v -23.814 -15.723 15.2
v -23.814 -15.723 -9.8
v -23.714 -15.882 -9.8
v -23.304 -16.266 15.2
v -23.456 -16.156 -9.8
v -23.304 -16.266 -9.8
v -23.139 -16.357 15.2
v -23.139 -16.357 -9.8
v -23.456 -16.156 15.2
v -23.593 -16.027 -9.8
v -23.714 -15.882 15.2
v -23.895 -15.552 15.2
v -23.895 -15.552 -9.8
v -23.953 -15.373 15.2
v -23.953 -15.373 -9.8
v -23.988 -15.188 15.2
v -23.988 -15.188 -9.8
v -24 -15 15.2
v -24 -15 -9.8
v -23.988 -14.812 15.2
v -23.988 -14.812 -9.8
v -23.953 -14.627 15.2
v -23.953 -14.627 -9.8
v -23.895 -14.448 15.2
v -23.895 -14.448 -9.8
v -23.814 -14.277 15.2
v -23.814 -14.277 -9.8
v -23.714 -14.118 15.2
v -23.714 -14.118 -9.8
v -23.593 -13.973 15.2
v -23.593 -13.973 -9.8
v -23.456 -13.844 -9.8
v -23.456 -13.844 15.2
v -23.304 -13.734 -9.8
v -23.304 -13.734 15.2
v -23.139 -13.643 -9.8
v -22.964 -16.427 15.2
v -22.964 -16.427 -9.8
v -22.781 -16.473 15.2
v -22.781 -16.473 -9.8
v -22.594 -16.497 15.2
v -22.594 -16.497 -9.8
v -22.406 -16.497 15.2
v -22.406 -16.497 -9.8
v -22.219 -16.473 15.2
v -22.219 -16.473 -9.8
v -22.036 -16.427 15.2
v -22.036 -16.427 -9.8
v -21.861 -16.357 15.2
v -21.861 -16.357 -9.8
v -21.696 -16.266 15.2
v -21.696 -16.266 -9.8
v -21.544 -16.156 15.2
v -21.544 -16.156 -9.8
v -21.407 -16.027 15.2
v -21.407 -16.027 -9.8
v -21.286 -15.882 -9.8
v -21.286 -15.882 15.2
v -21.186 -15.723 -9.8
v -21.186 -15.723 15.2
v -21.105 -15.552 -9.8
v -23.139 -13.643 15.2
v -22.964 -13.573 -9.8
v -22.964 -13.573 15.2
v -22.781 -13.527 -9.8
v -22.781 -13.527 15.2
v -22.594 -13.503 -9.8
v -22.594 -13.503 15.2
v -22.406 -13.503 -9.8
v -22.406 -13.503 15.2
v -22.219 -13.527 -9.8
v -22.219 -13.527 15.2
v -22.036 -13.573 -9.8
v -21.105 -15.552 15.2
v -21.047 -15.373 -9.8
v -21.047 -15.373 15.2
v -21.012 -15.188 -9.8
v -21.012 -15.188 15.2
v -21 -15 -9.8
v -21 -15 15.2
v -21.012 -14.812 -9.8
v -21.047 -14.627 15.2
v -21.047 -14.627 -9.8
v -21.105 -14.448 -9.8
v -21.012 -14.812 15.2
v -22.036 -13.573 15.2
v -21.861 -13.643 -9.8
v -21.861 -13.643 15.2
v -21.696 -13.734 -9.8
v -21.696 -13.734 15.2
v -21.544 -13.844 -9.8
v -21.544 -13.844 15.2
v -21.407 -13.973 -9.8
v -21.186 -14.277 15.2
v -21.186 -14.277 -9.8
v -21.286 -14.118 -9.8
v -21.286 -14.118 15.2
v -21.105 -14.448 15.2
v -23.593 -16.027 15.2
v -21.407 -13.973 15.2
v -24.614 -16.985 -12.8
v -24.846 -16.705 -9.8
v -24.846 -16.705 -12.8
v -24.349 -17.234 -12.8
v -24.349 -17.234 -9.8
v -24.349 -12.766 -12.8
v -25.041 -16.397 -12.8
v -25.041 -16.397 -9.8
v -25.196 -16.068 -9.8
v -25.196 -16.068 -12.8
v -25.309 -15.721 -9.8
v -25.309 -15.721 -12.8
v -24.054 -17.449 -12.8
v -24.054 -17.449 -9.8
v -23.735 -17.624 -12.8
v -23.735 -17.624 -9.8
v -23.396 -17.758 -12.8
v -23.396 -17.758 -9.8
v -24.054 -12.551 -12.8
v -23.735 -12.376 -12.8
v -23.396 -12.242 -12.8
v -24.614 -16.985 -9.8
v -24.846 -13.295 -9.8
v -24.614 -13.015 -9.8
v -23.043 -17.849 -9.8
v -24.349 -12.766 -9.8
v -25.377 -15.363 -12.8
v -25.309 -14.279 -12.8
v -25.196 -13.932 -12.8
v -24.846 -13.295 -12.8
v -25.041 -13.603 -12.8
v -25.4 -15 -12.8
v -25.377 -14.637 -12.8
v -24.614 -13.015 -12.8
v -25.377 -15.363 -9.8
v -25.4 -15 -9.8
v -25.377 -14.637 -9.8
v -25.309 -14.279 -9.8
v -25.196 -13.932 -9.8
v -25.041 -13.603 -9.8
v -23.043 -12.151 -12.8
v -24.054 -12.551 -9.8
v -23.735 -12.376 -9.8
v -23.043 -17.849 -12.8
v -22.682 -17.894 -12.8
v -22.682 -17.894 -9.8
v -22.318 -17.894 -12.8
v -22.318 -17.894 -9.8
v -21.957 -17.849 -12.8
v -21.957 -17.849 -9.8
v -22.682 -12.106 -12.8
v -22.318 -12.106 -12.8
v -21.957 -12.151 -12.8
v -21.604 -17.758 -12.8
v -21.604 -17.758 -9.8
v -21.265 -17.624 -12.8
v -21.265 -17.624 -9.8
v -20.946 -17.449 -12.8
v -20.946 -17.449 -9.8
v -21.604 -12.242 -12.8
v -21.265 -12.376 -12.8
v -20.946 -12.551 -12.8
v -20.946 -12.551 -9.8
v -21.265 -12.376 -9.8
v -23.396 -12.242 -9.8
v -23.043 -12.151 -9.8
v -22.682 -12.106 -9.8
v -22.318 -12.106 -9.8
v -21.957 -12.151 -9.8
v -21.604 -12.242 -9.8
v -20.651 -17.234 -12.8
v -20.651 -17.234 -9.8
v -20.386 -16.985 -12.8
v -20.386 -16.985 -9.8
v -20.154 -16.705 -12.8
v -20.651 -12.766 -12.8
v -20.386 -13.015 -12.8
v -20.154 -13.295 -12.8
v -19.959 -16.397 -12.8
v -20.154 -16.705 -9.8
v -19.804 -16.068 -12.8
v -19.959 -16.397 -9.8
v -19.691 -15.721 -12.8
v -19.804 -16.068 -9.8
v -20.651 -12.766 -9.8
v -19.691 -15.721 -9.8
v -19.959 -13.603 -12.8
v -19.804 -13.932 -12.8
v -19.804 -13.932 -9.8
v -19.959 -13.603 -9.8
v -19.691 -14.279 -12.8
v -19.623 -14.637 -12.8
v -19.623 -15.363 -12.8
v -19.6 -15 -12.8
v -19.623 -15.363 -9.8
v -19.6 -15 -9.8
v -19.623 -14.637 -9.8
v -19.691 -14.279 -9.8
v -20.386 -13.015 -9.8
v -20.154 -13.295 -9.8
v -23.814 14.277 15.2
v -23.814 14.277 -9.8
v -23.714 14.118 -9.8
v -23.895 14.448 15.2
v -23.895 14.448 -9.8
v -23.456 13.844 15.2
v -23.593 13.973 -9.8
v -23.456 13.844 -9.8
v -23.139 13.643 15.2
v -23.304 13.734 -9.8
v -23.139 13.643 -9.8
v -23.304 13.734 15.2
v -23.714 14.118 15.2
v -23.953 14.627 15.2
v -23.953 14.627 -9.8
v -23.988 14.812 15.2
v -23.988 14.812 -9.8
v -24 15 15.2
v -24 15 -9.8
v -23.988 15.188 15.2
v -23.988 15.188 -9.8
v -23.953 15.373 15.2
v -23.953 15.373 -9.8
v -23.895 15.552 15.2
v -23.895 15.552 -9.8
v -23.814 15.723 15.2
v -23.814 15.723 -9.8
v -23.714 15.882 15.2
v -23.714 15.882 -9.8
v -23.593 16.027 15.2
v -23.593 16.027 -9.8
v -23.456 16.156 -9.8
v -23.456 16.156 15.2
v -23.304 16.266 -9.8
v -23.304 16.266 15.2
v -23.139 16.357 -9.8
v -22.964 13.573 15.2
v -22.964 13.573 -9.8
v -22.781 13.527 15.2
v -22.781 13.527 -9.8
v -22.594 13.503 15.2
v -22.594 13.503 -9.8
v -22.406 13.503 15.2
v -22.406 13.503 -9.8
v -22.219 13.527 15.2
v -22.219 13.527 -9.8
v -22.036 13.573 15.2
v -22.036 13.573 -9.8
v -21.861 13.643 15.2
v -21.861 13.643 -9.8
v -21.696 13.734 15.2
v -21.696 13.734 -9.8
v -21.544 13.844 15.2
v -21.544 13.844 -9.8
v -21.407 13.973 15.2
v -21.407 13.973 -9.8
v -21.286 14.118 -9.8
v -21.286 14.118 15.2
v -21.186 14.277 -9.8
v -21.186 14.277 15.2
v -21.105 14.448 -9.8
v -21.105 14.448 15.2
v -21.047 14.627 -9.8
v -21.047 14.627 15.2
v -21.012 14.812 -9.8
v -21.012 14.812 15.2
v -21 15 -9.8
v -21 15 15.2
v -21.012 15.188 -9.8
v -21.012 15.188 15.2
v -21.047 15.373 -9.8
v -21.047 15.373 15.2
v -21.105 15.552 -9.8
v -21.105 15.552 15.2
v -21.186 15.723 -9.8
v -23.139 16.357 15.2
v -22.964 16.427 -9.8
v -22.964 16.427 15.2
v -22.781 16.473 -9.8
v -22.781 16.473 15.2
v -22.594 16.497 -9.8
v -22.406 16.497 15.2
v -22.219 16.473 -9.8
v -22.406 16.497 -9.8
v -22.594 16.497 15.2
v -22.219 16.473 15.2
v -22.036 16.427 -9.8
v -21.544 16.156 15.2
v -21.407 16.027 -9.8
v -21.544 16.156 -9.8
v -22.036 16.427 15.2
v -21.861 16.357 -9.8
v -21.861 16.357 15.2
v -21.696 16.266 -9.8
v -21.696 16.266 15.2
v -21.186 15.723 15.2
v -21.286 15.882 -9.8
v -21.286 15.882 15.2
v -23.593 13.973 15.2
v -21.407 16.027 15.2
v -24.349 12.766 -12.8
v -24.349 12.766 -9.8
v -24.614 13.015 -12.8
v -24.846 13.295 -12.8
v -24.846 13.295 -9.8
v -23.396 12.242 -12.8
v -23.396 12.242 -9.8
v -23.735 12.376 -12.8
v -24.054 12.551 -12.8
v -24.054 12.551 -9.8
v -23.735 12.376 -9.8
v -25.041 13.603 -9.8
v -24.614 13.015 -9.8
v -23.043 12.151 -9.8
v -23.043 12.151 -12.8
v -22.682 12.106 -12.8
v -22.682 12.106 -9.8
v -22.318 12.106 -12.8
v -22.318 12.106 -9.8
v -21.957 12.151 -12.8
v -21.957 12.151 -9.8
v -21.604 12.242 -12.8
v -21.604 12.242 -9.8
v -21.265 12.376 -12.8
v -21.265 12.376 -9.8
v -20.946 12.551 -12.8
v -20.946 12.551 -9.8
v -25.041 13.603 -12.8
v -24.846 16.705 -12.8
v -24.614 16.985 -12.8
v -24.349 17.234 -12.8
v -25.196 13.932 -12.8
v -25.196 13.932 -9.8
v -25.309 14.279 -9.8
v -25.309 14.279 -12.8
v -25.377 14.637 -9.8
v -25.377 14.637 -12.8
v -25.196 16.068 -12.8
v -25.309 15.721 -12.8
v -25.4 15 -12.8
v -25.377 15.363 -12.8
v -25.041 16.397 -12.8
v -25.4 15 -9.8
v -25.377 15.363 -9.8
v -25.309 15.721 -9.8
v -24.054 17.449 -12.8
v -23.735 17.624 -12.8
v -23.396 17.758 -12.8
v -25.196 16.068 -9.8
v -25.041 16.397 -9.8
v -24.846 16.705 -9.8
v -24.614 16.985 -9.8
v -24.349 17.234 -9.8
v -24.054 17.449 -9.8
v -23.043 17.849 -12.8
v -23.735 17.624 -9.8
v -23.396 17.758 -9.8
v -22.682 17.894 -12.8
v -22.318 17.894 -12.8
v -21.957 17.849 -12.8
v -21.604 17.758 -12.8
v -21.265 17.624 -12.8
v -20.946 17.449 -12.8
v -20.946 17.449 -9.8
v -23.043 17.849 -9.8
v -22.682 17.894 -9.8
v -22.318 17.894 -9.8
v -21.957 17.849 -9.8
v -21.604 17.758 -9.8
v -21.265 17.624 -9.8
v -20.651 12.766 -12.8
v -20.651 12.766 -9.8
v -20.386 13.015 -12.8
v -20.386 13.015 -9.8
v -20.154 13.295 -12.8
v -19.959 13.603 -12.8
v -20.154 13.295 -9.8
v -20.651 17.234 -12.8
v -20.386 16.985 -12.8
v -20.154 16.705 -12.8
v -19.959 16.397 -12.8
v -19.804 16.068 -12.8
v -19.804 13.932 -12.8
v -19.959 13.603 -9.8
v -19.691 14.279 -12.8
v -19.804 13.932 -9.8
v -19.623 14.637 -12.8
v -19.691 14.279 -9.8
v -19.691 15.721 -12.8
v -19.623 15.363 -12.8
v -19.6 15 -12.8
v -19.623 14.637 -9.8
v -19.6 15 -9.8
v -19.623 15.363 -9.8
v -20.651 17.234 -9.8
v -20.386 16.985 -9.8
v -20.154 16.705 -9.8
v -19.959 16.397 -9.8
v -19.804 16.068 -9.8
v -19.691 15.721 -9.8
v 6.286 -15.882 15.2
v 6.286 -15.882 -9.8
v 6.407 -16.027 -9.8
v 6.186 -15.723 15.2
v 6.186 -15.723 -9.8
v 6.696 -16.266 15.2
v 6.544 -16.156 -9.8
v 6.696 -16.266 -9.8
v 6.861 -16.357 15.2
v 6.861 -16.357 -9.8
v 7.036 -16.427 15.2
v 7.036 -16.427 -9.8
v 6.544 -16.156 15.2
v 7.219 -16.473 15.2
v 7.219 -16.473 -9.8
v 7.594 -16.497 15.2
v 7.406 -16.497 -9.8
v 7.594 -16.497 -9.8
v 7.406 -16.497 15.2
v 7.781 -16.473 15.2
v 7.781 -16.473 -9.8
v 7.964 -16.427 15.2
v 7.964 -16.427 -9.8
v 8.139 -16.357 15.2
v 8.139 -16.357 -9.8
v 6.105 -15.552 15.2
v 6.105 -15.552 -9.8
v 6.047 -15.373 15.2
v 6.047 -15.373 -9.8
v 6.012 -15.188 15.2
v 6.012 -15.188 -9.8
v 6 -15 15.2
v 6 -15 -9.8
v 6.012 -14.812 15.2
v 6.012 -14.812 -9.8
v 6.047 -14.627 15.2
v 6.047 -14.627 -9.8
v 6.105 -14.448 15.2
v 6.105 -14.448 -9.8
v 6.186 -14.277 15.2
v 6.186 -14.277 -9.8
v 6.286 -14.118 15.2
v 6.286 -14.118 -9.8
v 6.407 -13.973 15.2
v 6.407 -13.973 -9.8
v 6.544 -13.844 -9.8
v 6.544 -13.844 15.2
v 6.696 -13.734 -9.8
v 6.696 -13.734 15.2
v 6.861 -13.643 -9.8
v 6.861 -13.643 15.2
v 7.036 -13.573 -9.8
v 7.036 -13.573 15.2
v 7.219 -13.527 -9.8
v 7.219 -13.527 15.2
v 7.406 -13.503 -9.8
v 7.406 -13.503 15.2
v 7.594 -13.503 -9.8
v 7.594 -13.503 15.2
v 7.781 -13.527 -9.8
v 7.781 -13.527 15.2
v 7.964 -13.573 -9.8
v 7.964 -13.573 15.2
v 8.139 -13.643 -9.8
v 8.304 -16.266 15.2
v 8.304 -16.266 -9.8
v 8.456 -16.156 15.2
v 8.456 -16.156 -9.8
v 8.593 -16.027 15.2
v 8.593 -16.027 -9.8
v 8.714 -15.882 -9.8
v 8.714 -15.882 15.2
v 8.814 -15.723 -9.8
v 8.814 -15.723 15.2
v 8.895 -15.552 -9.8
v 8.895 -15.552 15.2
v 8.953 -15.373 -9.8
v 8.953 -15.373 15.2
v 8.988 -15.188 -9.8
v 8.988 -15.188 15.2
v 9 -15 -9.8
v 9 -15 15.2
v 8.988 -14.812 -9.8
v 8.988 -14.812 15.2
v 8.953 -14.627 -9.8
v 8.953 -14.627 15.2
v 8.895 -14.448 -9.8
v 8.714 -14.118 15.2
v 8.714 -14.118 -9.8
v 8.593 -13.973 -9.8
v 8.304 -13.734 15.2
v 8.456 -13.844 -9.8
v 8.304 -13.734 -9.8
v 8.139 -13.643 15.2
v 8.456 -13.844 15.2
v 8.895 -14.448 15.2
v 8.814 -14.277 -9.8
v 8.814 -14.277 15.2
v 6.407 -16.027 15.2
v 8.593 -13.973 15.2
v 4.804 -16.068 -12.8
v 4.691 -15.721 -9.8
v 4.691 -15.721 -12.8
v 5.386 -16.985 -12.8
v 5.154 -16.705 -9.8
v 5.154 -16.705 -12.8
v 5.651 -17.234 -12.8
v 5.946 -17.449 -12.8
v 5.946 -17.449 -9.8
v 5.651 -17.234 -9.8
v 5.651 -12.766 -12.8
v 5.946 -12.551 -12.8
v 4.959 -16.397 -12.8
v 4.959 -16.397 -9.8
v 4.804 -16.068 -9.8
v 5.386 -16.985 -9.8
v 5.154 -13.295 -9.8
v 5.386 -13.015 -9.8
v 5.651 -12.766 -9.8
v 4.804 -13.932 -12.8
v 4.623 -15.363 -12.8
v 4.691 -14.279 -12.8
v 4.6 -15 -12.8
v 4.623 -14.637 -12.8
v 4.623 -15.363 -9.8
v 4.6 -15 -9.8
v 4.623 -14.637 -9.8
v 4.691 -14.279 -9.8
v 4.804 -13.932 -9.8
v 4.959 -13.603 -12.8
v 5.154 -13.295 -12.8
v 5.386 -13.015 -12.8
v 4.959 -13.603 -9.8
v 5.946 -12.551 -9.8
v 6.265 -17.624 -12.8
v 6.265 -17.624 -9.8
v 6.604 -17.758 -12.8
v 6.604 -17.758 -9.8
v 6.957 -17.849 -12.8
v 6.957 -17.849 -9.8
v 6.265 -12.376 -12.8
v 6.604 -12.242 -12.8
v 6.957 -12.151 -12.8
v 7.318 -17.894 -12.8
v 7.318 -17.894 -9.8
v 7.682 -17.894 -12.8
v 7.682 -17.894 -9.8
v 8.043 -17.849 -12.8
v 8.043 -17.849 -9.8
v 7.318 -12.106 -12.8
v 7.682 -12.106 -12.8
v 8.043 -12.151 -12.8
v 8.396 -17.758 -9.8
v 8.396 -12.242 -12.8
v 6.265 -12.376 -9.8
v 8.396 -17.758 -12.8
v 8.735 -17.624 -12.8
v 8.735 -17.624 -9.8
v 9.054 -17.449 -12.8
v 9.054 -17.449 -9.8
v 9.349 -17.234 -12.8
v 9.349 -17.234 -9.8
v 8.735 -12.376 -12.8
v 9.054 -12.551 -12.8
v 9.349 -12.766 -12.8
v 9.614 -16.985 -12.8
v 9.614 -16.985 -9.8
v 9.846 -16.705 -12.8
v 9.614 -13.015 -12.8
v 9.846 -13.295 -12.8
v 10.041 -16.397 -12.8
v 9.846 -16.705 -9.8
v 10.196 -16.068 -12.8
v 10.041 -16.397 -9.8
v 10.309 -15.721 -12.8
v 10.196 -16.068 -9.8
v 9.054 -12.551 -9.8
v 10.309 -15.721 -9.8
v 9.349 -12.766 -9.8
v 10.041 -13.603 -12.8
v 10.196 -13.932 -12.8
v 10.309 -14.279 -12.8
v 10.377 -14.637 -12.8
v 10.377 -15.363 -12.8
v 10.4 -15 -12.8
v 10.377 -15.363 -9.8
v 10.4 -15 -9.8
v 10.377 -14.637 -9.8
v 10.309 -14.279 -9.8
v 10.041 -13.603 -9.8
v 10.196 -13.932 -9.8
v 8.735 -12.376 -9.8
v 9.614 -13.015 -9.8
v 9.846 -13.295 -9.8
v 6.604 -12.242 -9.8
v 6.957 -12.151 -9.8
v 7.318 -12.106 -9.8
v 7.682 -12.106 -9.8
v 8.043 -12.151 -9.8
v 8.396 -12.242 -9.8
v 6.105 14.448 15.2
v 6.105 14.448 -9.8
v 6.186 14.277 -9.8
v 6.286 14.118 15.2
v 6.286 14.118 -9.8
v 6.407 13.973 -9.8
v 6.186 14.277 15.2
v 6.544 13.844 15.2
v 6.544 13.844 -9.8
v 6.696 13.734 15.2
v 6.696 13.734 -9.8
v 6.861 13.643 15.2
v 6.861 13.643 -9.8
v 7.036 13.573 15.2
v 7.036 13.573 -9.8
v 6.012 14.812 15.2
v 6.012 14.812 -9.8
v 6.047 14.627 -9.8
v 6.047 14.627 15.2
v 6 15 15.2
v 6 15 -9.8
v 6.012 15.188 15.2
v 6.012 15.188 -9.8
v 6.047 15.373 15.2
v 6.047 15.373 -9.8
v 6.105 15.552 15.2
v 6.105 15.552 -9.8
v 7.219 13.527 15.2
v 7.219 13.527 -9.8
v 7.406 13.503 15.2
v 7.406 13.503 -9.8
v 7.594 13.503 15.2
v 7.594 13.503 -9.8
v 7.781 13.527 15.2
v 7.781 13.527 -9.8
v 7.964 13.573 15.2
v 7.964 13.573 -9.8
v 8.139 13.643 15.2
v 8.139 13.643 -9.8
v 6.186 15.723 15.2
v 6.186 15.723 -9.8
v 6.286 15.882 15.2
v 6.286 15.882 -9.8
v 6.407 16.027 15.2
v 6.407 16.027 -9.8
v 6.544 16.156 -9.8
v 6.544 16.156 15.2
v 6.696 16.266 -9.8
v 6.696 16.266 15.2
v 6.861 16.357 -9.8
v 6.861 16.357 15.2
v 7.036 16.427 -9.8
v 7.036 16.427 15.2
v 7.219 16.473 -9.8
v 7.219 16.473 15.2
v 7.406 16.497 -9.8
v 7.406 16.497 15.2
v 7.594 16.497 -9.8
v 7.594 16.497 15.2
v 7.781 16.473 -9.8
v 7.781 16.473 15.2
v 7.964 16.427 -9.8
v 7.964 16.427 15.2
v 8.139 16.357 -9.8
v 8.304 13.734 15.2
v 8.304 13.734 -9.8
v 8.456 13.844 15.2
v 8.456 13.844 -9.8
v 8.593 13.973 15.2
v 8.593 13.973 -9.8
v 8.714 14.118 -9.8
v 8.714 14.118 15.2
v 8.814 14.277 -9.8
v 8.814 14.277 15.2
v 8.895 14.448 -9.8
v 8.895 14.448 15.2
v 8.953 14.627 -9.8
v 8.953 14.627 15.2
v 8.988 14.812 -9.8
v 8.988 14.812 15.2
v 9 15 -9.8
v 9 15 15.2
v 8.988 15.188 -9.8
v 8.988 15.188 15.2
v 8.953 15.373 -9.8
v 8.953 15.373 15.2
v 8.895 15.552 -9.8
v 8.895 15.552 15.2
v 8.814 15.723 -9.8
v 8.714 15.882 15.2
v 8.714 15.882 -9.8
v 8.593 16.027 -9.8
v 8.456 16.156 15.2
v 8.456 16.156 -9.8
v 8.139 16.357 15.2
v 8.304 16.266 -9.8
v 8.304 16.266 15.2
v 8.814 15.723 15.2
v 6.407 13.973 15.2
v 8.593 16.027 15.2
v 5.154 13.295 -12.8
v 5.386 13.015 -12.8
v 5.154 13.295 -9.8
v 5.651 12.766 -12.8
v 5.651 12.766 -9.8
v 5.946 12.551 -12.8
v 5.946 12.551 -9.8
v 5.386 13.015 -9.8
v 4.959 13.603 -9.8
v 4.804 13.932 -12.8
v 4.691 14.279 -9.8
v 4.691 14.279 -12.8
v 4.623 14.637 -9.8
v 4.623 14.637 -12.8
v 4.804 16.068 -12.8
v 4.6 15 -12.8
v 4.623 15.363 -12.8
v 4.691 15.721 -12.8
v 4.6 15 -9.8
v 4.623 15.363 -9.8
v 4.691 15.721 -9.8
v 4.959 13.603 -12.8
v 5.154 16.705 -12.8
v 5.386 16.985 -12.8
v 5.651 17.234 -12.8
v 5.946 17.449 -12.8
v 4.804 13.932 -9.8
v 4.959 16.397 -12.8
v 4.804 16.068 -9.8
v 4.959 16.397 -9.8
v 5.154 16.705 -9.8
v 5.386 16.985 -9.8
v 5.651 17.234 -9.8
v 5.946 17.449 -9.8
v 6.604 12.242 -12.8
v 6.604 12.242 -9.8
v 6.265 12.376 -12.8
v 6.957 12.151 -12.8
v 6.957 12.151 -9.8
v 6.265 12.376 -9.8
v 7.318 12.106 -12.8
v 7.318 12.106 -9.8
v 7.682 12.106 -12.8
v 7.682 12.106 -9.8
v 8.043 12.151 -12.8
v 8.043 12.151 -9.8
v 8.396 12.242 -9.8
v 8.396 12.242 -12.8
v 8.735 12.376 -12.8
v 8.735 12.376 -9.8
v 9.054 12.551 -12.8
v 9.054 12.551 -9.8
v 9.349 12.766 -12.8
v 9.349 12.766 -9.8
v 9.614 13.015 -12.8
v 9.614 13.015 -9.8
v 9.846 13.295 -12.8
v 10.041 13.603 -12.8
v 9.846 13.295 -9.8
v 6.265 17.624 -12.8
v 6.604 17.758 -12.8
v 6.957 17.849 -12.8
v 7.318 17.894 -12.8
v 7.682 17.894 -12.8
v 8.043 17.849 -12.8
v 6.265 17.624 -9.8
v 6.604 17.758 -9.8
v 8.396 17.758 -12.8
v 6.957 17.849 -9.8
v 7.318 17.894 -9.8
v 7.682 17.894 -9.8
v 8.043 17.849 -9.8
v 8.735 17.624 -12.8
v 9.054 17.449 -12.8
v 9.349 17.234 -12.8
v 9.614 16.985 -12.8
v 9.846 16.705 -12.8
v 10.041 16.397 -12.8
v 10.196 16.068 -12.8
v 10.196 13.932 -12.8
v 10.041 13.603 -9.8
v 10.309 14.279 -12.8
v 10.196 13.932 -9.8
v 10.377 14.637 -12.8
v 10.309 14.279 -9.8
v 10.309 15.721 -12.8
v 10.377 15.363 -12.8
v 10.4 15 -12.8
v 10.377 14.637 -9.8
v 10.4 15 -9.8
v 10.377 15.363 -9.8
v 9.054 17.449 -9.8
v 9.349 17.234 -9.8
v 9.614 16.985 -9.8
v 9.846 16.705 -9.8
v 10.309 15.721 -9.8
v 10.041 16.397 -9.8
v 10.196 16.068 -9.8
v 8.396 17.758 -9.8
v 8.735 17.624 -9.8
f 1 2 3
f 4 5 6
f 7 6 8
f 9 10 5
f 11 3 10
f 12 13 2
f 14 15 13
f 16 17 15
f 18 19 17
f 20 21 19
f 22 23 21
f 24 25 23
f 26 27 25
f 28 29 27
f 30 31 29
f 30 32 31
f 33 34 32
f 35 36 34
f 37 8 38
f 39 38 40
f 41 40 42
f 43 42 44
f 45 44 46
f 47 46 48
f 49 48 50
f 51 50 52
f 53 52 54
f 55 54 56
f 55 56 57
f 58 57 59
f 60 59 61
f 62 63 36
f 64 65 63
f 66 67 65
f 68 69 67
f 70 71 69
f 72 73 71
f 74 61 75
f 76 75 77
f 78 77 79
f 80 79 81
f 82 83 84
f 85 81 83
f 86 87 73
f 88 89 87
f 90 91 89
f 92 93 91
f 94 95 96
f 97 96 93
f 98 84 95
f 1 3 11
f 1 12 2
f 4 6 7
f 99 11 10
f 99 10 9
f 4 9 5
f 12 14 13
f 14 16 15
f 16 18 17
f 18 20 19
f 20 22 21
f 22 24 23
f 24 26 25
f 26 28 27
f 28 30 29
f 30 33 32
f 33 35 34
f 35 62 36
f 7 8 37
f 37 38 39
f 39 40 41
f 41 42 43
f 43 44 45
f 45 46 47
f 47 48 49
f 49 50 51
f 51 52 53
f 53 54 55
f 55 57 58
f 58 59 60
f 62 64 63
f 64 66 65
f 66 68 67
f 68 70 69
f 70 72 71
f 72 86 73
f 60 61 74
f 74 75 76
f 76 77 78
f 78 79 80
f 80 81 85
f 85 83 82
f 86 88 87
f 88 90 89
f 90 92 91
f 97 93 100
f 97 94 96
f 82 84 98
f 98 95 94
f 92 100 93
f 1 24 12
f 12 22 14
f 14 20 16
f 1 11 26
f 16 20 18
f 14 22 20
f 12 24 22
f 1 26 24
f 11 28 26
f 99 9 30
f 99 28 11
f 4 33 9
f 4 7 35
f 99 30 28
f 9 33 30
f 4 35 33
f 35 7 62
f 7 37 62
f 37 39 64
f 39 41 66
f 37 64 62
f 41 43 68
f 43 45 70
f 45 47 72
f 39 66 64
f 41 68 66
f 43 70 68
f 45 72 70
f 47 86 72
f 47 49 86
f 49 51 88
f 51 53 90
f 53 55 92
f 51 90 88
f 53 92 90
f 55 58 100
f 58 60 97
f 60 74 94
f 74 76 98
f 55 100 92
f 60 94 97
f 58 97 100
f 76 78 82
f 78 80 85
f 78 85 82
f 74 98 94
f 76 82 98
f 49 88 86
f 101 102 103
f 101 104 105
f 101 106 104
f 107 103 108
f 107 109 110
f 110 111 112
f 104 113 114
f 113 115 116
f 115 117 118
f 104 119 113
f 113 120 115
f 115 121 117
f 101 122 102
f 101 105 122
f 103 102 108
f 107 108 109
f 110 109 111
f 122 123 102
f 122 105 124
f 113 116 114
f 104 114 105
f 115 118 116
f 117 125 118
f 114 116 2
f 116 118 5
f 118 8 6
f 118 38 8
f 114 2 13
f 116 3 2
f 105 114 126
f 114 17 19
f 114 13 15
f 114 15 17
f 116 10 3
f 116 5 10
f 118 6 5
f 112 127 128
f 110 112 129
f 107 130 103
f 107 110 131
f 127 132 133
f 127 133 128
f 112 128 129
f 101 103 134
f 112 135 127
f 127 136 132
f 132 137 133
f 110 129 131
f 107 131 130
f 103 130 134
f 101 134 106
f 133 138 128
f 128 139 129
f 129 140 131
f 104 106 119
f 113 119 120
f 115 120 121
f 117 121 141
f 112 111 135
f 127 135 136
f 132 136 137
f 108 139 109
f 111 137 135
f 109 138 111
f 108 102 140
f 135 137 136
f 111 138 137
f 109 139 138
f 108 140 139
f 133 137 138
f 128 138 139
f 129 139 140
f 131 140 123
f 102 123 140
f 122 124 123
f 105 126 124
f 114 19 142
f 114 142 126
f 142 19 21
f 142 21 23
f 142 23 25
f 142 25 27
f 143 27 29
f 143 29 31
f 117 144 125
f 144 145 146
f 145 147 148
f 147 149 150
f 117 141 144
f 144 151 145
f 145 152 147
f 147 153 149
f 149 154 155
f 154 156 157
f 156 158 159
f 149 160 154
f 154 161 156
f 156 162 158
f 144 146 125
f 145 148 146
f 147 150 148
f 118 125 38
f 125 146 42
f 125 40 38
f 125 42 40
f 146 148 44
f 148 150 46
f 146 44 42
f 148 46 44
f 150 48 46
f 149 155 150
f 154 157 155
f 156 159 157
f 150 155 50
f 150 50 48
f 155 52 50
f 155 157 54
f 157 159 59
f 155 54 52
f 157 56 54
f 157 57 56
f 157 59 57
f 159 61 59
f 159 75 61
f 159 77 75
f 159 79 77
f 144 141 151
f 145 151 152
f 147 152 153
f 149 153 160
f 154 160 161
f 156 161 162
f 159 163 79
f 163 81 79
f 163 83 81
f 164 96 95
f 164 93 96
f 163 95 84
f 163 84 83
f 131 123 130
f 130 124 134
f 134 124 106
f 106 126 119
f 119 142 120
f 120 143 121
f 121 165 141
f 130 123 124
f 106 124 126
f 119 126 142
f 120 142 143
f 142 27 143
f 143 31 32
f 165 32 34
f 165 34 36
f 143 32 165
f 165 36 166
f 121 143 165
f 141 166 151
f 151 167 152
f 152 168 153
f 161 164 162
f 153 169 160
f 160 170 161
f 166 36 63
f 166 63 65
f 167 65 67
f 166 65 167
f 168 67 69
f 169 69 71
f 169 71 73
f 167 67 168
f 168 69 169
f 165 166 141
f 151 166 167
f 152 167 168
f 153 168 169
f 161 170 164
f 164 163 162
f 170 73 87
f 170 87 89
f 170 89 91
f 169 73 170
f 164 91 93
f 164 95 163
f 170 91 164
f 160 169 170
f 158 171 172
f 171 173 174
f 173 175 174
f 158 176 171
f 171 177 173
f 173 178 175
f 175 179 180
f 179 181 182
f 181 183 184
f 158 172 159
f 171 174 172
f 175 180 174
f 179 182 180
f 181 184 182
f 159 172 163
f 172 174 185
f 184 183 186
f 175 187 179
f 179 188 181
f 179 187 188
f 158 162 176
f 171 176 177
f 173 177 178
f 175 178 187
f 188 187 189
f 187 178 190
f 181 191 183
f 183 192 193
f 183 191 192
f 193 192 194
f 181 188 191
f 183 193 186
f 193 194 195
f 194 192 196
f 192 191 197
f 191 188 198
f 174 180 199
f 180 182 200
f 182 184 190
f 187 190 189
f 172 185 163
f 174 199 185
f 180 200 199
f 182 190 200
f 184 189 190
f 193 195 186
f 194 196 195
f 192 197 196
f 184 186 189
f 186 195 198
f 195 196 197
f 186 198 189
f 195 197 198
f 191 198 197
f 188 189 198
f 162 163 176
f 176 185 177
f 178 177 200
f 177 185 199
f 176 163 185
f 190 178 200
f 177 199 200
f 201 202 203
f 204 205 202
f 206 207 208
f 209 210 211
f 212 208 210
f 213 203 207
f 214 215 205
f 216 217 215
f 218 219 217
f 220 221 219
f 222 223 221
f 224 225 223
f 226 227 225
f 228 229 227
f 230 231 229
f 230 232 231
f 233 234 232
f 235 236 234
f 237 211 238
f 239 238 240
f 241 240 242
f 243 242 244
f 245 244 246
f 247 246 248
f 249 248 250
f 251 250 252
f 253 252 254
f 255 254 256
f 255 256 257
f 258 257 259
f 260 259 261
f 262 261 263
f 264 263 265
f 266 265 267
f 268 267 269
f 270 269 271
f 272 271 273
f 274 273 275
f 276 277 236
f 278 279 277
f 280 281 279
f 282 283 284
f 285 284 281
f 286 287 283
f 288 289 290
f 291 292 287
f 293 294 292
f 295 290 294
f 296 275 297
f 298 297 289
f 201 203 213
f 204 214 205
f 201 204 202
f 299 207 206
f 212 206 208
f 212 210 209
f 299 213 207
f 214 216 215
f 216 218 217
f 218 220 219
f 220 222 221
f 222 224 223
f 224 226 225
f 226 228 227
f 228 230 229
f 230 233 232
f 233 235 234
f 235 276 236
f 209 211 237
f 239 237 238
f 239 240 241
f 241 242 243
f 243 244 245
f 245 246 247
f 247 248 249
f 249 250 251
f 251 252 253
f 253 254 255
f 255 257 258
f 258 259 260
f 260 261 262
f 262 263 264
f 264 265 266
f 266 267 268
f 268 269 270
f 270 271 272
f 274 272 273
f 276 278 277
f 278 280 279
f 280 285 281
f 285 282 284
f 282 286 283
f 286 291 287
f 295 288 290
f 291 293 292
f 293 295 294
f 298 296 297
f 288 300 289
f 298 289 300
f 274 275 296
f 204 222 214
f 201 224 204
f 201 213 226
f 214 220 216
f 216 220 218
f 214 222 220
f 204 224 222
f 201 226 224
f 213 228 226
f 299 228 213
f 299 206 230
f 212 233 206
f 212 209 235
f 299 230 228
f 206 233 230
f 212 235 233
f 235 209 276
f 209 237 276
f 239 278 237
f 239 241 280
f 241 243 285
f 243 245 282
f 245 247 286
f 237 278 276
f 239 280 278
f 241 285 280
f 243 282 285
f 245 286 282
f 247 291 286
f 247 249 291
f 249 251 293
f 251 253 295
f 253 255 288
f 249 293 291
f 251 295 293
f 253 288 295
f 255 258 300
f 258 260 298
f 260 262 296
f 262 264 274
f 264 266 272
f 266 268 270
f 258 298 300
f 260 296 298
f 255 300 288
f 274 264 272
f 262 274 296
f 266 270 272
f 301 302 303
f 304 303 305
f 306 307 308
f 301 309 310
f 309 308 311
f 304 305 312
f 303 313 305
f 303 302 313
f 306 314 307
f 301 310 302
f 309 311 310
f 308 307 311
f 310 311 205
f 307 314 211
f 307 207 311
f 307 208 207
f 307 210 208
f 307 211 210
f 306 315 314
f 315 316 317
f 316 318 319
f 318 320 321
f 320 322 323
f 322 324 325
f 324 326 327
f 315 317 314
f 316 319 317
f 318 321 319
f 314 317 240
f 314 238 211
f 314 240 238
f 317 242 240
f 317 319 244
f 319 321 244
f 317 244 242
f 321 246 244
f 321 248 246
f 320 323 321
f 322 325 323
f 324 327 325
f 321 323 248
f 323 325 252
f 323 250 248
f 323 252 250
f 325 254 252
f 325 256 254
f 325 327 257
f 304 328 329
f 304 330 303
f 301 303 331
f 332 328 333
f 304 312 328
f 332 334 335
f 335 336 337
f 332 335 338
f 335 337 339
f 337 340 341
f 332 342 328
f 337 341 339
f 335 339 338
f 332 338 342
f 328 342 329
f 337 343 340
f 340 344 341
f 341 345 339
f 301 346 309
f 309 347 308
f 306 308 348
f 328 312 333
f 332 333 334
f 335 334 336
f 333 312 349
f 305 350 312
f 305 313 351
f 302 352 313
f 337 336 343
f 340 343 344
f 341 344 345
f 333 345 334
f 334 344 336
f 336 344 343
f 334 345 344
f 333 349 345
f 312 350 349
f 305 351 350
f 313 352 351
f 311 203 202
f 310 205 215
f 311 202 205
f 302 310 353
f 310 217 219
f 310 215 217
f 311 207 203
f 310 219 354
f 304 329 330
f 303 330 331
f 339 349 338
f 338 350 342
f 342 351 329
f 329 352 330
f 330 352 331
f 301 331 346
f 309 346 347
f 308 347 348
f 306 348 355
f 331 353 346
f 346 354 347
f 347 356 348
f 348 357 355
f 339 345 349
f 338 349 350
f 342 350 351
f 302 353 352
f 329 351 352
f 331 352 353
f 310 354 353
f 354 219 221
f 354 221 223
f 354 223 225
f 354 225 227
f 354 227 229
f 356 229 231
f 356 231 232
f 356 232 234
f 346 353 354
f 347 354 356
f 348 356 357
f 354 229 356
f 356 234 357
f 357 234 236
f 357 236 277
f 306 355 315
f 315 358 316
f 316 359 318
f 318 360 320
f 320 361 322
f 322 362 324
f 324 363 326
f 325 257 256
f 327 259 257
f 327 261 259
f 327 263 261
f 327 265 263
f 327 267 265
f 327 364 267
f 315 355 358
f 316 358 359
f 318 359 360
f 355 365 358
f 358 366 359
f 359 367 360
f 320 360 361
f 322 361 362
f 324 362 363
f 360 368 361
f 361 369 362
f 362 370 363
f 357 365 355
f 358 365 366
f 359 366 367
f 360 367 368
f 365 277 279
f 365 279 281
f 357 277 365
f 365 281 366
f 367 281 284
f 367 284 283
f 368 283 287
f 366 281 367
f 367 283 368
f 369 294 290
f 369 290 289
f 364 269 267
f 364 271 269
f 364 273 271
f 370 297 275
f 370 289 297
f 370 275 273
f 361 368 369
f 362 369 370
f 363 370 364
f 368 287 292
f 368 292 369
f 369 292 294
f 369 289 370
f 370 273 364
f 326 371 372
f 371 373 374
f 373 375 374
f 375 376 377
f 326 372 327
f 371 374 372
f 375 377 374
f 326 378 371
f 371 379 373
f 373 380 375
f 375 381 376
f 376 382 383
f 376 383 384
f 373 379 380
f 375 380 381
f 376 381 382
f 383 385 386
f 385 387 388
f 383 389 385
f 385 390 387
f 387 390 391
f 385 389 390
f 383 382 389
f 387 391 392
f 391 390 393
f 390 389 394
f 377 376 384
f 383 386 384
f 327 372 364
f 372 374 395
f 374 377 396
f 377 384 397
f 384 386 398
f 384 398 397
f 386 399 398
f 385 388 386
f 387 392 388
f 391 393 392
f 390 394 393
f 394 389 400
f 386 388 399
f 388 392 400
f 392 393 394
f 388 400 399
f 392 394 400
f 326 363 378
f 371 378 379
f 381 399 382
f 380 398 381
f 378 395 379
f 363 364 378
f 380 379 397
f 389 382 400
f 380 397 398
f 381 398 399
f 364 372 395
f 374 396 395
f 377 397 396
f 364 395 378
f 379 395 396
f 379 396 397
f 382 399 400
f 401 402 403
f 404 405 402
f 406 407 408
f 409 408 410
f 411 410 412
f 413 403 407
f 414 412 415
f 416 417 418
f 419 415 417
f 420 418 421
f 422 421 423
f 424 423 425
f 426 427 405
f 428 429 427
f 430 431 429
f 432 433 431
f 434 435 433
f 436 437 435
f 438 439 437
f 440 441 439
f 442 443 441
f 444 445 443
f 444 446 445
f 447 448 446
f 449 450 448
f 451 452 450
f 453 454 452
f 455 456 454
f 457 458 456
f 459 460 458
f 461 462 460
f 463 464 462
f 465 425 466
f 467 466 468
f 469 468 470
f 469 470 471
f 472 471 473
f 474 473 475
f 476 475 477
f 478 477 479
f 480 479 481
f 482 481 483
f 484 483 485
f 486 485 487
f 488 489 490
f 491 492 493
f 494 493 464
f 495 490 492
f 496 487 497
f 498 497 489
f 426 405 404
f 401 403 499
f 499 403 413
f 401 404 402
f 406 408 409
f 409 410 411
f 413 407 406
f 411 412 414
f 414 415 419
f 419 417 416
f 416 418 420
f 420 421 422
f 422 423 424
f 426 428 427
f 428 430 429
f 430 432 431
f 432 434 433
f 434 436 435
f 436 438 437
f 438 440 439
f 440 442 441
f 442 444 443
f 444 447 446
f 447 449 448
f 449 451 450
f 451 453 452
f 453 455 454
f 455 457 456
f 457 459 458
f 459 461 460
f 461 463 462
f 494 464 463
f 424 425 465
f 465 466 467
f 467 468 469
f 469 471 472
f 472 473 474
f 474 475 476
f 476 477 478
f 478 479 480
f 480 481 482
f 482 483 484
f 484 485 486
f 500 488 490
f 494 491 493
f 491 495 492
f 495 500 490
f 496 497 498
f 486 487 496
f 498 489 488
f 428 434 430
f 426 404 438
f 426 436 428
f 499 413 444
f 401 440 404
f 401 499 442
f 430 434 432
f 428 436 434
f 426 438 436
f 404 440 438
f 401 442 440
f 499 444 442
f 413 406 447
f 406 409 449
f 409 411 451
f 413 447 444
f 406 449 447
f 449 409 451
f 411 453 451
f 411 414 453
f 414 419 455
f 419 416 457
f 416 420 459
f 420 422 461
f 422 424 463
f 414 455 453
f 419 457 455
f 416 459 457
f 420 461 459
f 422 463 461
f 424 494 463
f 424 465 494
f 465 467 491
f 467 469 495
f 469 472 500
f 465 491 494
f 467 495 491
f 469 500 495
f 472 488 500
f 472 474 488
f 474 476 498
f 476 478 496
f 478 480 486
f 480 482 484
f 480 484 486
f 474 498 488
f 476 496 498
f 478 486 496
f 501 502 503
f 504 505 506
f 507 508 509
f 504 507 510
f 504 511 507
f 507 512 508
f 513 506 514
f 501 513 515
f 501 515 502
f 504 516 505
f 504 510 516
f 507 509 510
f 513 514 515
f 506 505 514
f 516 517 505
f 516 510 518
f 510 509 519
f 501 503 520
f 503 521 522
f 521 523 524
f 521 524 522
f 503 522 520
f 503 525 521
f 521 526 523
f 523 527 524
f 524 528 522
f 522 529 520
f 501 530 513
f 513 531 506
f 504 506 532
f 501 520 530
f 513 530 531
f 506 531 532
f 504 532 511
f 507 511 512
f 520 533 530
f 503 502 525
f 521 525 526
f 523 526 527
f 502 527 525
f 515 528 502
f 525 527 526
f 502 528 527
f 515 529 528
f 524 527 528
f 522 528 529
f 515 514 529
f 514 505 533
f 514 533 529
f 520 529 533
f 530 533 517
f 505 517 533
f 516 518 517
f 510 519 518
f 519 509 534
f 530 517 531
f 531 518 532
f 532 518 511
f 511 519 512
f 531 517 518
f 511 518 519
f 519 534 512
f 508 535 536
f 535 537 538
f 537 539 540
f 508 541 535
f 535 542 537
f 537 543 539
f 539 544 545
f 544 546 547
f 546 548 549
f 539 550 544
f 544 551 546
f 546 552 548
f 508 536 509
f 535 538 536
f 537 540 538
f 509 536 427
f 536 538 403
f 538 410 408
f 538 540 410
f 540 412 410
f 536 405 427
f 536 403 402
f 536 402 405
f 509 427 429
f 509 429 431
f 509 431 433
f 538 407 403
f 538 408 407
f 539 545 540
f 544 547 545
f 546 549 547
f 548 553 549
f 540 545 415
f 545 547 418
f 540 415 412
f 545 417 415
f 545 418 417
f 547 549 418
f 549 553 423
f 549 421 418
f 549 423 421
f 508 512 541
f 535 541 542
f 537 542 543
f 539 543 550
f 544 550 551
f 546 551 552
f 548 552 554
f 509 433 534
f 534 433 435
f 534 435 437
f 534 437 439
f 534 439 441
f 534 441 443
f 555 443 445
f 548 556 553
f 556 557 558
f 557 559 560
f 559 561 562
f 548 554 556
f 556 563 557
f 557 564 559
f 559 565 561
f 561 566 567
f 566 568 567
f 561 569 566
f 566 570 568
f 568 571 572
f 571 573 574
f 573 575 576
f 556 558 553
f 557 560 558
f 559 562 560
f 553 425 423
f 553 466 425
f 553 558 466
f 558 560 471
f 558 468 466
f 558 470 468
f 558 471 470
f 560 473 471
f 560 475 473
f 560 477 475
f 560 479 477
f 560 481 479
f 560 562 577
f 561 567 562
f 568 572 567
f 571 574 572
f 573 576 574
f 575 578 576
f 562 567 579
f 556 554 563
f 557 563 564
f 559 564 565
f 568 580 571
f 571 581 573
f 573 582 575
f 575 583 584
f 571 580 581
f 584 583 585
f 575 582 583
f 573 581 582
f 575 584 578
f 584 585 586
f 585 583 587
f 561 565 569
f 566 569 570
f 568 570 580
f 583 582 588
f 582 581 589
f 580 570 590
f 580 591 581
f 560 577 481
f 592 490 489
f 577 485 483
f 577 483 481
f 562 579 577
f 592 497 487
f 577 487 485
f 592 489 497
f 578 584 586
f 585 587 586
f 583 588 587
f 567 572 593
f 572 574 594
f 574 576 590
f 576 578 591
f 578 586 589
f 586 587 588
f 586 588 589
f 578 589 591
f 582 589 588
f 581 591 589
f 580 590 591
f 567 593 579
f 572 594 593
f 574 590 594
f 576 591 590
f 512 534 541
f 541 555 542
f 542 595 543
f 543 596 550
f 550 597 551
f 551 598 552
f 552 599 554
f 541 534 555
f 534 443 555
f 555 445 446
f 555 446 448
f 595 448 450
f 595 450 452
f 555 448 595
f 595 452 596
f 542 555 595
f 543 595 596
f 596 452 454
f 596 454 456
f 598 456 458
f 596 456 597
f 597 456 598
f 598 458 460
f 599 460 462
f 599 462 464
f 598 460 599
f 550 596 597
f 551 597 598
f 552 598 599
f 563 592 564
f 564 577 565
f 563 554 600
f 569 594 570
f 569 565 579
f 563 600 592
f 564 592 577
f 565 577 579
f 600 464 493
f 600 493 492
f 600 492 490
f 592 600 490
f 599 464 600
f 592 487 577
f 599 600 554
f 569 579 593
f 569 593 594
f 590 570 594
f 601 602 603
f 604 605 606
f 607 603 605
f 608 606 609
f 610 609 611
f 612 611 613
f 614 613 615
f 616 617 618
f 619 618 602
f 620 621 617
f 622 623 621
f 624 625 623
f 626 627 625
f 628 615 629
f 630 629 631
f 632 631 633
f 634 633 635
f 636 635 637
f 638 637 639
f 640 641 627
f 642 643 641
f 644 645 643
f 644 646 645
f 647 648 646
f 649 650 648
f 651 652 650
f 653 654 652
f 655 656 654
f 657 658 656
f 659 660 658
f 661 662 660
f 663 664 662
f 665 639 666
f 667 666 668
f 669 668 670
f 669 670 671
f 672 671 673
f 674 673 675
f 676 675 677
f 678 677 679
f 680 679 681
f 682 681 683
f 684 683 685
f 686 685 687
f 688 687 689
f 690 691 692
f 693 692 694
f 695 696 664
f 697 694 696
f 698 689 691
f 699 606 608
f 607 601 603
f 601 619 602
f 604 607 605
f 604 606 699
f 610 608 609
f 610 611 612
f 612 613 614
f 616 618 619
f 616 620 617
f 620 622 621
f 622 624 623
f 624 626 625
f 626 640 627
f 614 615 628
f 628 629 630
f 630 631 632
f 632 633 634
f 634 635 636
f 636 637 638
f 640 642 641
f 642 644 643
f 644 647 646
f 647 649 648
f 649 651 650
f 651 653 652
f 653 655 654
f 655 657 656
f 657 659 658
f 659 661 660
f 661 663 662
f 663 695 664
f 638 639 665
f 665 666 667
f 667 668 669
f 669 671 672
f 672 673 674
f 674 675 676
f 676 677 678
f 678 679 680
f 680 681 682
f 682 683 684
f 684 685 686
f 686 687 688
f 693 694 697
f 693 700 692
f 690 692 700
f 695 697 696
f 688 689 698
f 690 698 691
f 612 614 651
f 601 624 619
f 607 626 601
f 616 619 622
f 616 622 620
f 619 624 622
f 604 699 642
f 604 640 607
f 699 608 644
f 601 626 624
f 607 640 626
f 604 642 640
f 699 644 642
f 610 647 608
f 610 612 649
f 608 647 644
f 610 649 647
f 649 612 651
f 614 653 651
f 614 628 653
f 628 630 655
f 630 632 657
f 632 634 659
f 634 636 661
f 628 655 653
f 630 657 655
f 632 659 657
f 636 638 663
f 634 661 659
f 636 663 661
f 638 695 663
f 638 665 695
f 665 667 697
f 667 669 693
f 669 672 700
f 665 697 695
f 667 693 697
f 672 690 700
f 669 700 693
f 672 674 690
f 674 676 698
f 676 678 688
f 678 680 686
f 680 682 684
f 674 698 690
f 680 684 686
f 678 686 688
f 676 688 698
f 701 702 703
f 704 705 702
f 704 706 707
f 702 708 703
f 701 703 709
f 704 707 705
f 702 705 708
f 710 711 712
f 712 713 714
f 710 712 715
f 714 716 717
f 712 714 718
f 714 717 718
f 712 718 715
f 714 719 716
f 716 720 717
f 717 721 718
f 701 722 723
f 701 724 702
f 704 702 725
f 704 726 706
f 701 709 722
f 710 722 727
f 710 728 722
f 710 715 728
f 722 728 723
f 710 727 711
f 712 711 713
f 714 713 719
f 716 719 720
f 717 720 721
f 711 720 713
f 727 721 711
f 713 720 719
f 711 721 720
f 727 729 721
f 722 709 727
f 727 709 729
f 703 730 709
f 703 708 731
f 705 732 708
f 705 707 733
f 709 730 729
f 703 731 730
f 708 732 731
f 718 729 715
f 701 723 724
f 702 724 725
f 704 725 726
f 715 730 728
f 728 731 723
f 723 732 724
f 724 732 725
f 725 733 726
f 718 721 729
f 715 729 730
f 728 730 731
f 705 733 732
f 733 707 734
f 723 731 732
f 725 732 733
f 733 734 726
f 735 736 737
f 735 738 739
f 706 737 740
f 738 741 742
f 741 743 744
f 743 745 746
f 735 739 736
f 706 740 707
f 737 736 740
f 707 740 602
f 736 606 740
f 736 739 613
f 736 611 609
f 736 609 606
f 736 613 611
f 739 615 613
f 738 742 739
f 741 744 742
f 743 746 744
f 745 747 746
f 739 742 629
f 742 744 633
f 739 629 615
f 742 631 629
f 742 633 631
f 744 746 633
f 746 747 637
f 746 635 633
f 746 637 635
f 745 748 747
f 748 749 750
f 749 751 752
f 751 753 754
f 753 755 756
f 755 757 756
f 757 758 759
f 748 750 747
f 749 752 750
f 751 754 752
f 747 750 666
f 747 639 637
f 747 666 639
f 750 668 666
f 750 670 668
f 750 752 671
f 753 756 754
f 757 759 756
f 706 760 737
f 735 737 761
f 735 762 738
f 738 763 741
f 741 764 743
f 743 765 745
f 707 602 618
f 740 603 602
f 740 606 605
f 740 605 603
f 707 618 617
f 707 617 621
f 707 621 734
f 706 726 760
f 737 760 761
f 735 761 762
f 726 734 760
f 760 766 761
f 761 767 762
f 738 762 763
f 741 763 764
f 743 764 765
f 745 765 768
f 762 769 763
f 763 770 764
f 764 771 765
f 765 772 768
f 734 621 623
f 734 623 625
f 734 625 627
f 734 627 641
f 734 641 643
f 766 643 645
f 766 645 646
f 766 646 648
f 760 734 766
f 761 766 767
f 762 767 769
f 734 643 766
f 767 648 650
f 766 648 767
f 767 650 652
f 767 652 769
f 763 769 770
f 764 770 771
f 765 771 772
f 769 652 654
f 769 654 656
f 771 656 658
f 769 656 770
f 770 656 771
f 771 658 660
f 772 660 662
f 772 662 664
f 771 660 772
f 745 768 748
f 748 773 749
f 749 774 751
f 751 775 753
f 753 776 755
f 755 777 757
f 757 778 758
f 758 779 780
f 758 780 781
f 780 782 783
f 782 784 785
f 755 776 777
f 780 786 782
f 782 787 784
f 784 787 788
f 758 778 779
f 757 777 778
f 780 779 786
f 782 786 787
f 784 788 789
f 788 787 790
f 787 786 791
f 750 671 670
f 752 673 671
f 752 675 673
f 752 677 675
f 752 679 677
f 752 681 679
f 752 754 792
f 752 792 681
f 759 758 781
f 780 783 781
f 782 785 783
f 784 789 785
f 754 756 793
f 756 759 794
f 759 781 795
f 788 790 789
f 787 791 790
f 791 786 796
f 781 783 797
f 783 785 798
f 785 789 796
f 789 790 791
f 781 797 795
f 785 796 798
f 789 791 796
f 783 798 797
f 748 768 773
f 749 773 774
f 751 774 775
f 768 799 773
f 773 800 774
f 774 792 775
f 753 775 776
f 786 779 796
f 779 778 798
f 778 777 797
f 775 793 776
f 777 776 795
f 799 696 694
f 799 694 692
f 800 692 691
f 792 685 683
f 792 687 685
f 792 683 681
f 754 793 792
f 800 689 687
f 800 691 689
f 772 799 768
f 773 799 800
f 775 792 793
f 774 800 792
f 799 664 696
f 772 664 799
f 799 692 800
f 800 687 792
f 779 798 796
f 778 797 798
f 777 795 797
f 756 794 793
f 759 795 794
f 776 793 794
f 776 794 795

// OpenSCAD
$fn = 50;

difference() {
	union() {
		translate(v = [-22.5, -15, -9.8]) {
			cylinder(h = 25, r = 1.5);
		}
		translate(v = [-22.5, -15, -12.8]) {
			cylinder(h = 3, r = 2.9);
		}
		translate(v = [-22.5, 15, -9.8]) {
			cylinder(h = 25, r = 1.5);
		}
		translate(v = [-22.5, 15, -12.8]) {
			cylinder(h = 3, r = 2.9);
		}
		translate(v = [7.5, -15, -9.8]) {
			cylinder(h = 25, r = 1.5);
		}
		translate(v = [7.5, -15, -12.8]) {
			cylinder(h = 3, r = 2.9);
		}
		translate(v = [7.5, 15, -9.8]) {
			cylinder(h = 25, r = 1.5);
		}
		translate(v = [7.5, 15, -12.8]) {
			cylinder(h = 3, r = 2.9);
		}
	}
	union();
}
